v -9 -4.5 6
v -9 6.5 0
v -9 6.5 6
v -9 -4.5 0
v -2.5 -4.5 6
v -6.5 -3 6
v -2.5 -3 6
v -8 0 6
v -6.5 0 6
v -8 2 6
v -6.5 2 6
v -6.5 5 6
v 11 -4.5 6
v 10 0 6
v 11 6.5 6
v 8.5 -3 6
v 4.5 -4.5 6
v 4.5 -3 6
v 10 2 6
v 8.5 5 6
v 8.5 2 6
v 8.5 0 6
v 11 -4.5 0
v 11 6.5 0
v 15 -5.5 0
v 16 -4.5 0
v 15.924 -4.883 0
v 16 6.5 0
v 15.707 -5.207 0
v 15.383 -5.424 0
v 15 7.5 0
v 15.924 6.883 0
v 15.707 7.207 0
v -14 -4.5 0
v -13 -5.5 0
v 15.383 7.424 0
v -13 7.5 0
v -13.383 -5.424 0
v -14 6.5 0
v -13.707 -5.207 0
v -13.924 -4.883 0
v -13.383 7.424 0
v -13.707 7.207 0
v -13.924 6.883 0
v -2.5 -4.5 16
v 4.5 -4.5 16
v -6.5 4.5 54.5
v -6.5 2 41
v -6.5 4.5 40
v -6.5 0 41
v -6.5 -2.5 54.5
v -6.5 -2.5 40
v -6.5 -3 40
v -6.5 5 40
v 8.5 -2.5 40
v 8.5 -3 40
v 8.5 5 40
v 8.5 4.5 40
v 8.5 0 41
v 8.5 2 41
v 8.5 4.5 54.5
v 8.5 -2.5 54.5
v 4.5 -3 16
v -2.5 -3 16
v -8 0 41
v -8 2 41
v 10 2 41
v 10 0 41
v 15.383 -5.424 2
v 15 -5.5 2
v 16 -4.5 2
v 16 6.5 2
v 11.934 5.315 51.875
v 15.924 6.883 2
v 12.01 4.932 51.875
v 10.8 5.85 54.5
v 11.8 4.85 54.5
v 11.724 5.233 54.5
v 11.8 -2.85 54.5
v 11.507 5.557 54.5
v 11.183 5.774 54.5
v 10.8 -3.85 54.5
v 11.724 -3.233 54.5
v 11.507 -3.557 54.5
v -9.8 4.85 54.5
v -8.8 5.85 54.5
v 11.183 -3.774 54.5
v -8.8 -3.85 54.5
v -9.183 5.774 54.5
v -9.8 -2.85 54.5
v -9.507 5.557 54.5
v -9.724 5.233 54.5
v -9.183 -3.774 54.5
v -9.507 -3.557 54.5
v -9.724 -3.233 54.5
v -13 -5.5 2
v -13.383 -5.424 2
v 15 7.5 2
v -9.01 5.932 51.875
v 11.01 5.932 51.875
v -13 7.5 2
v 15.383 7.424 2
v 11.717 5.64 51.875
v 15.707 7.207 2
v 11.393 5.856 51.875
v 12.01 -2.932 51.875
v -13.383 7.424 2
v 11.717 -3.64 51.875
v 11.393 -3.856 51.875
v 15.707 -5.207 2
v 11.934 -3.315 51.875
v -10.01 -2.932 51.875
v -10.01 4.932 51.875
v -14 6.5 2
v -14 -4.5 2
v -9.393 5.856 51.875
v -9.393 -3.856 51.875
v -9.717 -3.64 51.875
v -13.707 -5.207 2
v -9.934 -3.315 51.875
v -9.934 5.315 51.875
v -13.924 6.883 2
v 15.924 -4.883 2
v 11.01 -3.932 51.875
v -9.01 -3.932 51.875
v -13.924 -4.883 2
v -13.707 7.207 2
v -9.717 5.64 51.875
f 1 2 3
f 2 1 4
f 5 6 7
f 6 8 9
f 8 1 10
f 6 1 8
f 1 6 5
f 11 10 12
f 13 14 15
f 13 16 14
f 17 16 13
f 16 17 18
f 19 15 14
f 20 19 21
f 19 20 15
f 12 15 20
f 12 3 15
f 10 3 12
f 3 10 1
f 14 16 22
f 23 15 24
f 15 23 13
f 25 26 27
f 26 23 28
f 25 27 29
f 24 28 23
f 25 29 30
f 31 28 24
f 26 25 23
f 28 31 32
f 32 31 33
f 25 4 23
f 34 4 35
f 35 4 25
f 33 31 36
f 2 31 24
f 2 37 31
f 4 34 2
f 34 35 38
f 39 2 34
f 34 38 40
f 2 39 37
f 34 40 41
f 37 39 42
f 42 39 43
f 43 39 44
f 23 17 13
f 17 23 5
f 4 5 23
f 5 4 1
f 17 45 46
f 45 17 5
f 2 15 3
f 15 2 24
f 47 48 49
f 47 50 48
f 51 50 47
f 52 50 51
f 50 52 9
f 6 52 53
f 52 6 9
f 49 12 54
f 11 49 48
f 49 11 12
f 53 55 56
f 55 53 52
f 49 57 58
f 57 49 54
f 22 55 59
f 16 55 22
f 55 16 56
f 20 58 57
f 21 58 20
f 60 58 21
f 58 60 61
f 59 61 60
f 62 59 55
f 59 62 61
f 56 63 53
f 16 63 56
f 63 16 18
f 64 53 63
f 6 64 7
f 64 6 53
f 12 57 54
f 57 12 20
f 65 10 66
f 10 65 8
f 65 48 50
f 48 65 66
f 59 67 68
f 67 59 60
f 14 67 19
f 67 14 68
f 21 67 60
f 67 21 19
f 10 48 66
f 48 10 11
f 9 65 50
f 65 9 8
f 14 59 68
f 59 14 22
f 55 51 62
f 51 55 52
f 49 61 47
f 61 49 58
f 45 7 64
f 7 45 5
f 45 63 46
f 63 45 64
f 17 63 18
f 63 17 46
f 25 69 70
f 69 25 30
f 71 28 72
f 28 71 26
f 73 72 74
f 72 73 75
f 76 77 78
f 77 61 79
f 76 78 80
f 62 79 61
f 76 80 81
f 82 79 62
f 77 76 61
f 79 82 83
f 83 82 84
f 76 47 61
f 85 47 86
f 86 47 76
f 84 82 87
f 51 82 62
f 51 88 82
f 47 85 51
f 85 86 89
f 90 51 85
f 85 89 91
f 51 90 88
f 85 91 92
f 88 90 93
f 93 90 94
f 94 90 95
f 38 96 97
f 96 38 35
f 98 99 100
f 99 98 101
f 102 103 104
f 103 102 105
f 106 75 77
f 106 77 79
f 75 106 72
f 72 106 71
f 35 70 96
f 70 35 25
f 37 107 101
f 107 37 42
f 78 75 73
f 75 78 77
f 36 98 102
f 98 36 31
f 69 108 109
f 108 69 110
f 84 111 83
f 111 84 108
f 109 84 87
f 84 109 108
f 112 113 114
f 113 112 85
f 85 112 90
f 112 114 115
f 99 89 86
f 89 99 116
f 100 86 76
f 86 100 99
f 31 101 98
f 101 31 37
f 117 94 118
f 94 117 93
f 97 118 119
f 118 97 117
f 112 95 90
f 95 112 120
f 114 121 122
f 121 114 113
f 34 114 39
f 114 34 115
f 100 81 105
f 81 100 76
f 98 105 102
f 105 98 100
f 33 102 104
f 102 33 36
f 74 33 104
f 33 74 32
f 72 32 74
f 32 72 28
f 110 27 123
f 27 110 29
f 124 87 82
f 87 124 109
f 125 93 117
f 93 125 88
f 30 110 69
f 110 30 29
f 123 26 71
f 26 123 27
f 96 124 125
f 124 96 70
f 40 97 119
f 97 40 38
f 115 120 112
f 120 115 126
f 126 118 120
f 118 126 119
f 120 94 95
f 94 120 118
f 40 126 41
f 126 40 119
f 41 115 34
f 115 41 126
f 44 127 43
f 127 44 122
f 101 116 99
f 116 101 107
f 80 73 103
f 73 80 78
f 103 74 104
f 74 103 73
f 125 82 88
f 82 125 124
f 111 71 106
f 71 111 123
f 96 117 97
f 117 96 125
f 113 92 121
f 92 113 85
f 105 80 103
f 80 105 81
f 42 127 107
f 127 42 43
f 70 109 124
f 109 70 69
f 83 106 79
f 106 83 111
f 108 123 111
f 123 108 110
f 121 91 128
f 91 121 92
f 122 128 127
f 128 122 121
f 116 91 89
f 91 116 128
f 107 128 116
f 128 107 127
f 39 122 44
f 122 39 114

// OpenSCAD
// Amiga Rys mkII r2 usb-to-9pin adapter

module insert() {
    translate([-9,-4.5,0])
    union() {
        cube([20,11,6]);

        translate([2.5,1.5,0])
        cube([15,8,40]);
        
        translate([1,4.5,0])
        cube([18,2,41]);

        translate([2.5,2,0])
        cube([15,7,55]);

        translate([6.5,0.0,0])
        cube([7,5,16]);
    }
}

module body() {
    // cube([30,13,55]);
    
    $fn=16;
    translate([1,1,1])
    minkowski() {
        linear_extrude(height=52.5,scale=[0.7,0.7], slices=20, twist=0)
        square([28, 11],center=true);
        cylinder(2, center=true);
    }
}

difference() {
    body();
    
    insert();
}
